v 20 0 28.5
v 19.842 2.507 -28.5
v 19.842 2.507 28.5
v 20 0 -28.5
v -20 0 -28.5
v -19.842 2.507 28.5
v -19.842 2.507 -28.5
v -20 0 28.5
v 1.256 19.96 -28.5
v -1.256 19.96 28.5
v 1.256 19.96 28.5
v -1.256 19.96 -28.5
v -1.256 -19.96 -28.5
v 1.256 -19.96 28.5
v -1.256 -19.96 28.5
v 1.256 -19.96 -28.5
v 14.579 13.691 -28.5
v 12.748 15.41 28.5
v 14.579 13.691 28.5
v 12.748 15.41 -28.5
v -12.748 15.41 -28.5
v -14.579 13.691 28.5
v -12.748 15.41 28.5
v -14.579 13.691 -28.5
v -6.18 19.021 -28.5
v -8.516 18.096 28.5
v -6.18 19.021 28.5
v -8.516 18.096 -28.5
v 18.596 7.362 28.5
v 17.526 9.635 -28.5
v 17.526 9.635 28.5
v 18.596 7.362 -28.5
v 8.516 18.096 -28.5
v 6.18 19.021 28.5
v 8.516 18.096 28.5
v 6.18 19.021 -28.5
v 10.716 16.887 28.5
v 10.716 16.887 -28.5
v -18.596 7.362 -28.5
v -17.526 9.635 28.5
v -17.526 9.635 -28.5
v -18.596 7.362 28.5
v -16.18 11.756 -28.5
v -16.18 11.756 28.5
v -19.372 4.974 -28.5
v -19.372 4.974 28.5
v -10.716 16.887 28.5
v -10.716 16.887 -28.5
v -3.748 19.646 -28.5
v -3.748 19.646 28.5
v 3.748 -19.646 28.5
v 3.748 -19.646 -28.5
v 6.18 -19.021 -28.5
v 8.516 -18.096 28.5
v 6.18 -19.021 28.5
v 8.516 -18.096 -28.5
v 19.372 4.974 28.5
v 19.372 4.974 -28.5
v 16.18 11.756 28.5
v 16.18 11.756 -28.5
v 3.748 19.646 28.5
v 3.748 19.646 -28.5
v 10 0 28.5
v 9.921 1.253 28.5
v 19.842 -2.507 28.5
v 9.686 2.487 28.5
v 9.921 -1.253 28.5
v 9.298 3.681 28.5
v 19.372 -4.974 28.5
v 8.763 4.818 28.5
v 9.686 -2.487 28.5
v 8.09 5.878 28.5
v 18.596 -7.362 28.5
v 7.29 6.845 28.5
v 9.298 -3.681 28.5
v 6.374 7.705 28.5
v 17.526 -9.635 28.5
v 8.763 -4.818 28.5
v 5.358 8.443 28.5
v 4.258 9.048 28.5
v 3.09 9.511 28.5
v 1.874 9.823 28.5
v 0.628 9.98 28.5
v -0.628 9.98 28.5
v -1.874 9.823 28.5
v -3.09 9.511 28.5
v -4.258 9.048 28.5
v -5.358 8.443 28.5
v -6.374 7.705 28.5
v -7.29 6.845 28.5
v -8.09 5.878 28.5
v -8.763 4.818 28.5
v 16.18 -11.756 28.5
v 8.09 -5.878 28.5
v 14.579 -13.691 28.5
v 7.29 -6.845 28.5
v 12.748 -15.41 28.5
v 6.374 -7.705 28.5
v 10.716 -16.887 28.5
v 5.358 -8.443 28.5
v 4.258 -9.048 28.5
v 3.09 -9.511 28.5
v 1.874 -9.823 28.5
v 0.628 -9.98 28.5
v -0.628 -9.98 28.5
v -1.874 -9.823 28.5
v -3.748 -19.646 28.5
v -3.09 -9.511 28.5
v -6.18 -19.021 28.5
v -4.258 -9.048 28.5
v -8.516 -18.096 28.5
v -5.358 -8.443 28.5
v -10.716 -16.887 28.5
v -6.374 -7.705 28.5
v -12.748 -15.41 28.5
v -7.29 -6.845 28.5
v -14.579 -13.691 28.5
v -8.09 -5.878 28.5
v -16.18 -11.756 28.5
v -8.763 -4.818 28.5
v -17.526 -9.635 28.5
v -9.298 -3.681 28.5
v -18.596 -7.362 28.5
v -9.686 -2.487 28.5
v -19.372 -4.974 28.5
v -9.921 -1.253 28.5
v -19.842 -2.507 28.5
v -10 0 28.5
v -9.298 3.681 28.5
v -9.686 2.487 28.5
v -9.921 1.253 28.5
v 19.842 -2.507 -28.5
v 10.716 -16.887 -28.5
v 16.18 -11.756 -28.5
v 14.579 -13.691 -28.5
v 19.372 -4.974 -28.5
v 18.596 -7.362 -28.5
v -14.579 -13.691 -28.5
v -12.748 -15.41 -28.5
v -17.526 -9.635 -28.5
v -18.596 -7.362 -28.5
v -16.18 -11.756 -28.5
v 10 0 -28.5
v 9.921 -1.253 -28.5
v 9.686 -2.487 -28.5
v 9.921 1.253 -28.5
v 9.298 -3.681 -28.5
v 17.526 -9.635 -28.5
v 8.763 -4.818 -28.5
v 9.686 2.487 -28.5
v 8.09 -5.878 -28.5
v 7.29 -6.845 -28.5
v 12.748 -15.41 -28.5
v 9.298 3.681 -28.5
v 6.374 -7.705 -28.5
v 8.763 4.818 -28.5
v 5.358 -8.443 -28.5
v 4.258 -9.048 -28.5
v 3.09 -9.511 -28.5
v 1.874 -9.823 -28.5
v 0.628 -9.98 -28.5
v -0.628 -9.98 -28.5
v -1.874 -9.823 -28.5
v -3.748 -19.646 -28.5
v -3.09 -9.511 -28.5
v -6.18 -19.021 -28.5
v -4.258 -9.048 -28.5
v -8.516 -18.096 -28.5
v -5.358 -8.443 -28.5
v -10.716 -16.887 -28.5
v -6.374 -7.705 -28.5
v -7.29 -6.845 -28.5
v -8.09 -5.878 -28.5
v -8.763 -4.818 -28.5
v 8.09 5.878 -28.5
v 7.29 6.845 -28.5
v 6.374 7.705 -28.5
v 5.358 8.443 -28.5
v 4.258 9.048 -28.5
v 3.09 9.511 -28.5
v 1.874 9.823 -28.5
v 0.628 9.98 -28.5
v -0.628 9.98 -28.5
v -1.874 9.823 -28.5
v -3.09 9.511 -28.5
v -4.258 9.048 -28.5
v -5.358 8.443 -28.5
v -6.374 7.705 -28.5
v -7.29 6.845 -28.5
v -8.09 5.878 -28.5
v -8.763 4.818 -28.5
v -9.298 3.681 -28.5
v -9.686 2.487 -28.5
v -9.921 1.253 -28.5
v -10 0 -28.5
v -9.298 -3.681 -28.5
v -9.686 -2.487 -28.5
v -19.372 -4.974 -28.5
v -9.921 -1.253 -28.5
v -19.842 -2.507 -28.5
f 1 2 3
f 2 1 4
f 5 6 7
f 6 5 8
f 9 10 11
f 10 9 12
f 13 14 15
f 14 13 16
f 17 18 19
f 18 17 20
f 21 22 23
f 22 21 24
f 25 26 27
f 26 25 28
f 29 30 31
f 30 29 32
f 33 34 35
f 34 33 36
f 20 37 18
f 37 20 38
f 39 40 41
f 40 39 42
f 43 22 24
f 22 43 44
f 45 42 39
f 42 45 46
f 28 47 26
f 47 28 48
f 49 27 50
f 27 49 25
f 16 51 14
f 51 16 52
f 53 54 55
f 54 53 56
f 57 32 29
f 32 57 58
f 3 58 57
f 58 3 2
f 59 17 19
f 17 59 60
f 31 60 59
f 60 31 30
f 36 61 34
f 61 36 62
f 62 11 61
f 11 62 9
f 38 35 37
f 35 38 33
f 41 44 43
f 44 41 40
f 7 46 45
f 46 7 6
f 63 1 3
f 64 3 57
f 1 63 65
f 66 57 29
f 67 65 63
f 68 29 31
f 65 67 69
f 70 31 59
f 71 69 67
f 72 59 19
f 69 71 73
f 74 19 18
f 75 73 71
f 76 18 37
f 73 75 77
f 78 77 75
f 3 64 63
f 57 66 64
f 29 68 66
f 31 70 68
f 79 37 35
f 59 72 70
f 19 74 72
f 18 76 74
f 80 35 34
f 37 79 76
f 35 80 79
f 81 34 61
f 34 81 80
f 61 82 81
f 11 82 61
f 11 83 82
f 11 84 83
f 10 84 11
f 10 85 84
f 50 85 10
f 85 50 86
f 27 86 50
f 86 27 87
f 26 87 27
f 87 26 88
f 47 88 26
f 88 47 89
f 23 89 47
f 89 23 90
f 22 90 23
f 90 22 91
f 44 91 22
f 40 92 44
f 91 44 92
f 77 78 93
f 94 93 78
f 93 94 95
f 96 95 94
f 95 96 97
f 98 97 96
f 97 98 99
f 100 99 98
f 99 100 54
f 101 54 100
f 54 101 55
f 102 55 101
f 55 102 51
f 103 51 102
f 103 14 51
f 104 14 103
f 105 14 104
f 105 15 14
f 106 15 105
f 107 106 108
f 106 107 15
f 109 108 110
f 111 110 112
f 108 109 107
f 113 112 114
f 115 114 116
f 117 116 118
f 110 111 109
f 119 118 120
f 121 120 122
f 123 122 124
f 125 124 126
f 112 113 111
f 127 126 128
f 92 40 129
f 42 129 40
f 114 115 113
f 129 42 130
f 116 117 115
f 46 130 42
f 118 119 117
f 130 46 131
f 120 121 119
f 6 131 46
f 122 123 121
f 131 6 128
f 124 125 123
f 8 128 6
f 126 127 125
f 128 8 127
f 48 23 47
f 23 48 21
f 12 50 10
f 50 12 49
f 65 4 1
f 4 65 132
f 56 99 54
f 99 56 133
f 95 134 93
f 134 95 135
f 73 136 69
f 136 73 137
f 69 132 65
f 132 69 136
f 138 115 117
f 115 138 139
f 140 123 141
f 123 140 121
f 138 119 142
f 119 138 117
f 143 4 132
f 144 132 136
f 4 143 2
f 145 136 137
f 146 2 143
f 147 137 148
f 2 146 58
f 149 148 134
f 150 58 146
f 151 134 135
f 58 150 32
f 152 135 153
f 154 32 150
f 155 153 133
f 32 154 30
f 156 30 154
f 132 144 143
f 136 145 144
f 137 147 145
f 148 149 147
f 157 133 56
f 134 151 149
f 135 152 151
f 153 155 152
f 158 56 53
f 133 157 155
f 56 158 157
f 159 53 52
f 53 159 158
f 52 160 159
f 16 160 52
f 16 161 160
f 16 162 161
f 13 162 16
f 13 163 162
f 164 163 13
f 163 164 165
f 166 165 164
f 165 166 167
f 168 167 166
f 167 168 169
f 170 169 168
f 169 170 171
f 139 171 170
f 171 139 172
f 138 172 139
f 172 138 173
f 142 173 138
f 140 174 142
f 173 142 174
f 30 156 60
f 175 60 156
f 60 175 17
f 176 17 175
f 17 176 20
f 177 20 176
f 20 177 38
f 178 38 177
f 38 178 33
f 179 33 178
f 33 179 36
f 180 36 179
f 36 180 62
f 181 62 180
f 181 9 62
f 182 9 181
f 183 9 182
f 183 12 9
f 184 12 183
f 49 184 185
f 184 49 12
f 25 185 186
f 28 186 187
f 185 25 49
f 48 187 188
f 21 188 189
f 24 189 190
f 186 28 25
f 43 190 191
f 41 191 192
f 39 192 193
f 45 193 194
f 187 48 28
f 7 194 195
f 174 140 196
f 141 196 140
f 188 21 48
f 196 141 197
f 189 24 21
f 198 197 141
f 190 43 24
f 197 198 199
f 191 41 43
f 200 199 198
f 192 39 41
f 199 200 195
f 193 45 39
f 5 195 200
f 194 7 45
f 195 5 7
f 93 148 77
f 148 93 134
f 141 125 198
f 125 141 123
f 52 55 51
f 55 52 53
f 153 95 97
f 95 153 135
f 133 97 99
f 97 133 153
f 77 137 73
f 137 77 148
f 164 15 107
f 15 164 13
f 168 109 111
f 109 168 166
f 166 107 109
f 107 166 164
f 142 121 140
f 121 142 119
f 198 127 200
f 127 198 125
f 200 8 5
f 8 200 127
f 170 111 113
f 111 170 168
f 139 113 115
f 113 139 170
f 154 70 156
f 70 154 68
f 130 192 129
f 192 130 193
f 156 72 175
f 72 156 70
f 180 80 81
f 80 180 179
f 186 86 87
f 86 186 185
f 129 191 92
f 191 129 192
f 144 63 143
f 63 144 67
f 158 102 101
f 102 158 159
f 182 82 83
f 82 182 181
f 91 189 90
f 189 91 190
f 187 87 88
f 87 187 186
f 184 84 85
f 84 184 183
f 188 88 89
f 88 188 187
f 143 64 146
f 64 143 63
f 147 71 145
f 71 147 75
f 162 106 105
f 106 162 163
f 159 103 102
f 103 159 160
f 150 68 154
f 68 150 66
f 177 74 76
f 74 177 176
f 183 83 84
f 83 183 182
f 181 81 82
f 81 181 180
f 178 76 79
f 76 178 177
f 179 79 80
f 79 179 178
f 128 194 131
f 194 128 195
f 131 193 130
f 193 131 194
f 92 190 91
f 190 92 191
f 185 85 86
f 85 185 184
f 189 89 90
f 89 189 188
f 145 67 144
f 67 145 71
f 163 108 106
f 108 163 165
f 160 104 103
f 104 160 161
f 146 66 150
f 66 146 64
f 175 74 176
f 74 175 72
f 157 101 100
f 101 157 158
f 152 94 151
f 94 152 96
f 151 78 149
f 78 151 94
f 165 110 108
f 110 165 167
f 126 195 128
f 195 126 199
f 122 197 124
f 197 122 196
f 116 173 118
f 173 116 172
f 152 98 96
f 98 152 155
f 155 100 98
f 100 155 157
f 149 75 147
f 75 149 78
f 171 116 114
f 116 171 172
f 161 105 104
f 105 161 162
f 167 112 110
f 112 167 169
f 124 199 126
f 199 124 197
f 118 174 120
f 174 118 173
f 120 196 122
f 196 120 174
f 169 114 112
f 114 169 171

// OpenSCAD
$fn = 50;


difference() {
	union() {
		translate(v = [0, 0, -28.5000000000]) {
			cylinder(h = 57, r = 20.0000000000);
		}
	}
	union() {
		translate(v = [0, 0, -100.0000000000]) {
			cylinder(h = 200, r = 10);
		}
	}
}
